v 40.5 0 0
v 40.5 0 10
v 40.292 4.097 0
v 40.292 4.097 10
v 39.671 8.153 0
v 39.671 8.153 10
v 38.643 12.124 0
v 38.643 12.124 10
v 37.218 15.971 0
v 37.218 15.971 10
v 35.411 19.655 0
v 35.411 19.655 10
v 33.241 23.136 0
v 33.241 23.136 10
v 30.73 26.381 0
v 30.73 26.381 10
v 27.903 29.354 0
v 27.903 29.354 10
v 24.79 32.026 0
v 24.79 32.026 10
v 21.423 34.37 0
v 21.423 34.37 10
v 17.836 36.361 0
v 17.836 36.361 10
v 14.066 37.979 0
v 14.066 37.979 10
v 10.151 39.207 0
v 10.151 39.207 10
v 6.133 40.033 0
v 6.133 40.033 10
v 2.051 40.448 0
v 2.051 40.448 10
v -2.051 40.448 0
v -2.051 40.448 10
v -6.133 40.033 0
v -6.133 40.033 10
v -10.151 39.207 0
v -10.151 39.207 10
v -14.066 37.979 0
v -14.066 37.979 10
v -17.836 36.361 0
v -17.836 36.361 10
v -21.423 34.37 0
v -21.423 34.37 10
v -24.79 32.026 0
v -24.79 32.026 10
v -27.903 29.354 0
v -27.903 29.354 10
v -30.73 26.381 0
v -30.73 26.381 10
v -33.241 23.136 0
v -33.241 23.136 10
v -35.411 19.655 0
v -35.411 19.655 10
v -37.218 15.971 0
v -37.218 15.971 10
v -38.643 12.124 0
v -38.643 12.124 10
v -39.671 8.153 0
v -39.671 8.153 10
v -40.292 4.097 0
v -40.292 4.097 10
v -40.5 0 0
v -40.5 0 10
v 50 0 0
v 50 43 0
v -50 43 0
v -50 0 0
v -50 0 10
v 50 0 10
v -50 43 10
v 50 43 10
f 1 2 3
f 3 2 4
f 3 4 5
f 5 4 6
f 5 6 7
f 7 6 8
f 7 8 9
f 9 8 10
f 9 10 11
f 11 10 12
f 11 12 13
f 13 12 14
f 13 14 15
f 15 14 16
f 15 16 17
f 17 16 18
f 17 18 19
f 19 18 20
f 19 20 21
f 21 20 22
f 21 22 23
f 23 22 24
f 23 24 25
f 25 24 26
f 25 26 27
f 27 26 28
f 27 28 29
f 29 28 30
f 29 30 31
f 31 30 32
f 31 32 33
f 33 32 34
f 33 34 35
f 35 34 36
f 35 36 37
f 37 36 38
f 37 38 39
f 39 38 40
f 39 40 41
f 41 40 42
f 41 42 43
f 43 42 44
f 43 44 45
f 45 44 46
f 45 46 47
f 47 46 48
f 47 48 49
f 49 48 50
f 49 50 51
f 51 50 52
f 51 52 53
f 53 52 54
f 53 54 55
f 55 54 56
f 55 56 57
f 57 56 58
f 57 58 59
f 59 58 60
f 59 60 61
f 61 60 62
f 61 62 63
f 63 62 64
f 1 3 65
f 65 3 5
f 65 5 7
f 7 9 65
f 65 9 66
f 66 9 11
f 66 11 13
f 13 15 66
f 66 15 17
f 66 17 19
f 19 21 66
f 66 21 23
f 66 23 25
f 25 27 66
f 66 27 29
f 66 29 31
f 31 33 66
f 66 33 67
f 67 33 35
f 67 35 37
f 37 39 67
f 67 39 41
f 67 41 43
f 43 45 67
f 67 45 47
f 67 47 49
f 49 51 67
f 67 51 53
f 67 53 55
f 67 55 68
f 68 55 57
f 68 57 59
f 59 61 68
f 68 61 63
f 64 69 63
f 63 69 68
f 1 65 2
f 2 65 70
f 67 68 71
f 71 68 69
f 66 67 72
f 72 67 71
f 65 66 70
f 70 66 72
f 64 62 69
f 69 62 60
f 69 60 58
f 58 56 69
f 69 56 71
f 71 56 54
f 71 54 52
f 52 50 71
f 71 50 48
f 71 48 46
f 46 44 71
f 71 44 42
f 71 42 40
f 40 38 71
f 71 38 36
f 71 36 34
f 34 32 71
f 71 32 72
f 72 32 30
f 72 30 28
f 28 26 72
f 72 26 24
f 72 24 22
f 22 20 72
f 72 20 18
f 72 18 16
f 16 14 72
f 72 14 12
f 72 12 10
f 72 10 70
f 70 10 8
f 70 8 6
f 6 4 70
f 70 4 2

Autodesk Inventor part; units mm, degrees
ref_plane "YZ Plane" through (0, 0, 0) normal (1, 0, 0) x (0, 1, 0)
ref_plane "XZ Plane" through (0, 0, 0) normal (0, 1, 0) x (-1, 0, 0)
ref_plane "XY Plane" through (0, 0, 0) normal (0, 0, 1) x (1, 0, 0)
sketch "Sketch13" plane through (0, 0, 0) normal (0, 0, 1) x (1, 0, 0)
  line L0 (-50, 43) -> (50, 43)
  line L1 (50, 43) -> (50, 0)
  line L2 (50, 0) -> (-50, 0)
  line L3 (-50, 0) -> (-50, 43)
  line L4 (-50, 43) -> (50, 0) construction
  line L5 (50, 43) -> (-50, 0) construction
  point P0 (0, 0)
  point P1 (0, 21.5)
  dimension "d42" = 100
  dimension "d43" = 43
extrude "Extrusion11" add sketch "Sketch13" along normal blind 10
sketch "Sketch14" plane through (0, 0, 10) normal (0, 0, 1) x (1, 0, 0)
  circle A0 centre (0, 0) radius 40.5
  dimension "d46" = 81
extrude "Extrusion12" cut sketch "Sketch14" against normal blind 50
properties part number "pipe_holder_v03"
